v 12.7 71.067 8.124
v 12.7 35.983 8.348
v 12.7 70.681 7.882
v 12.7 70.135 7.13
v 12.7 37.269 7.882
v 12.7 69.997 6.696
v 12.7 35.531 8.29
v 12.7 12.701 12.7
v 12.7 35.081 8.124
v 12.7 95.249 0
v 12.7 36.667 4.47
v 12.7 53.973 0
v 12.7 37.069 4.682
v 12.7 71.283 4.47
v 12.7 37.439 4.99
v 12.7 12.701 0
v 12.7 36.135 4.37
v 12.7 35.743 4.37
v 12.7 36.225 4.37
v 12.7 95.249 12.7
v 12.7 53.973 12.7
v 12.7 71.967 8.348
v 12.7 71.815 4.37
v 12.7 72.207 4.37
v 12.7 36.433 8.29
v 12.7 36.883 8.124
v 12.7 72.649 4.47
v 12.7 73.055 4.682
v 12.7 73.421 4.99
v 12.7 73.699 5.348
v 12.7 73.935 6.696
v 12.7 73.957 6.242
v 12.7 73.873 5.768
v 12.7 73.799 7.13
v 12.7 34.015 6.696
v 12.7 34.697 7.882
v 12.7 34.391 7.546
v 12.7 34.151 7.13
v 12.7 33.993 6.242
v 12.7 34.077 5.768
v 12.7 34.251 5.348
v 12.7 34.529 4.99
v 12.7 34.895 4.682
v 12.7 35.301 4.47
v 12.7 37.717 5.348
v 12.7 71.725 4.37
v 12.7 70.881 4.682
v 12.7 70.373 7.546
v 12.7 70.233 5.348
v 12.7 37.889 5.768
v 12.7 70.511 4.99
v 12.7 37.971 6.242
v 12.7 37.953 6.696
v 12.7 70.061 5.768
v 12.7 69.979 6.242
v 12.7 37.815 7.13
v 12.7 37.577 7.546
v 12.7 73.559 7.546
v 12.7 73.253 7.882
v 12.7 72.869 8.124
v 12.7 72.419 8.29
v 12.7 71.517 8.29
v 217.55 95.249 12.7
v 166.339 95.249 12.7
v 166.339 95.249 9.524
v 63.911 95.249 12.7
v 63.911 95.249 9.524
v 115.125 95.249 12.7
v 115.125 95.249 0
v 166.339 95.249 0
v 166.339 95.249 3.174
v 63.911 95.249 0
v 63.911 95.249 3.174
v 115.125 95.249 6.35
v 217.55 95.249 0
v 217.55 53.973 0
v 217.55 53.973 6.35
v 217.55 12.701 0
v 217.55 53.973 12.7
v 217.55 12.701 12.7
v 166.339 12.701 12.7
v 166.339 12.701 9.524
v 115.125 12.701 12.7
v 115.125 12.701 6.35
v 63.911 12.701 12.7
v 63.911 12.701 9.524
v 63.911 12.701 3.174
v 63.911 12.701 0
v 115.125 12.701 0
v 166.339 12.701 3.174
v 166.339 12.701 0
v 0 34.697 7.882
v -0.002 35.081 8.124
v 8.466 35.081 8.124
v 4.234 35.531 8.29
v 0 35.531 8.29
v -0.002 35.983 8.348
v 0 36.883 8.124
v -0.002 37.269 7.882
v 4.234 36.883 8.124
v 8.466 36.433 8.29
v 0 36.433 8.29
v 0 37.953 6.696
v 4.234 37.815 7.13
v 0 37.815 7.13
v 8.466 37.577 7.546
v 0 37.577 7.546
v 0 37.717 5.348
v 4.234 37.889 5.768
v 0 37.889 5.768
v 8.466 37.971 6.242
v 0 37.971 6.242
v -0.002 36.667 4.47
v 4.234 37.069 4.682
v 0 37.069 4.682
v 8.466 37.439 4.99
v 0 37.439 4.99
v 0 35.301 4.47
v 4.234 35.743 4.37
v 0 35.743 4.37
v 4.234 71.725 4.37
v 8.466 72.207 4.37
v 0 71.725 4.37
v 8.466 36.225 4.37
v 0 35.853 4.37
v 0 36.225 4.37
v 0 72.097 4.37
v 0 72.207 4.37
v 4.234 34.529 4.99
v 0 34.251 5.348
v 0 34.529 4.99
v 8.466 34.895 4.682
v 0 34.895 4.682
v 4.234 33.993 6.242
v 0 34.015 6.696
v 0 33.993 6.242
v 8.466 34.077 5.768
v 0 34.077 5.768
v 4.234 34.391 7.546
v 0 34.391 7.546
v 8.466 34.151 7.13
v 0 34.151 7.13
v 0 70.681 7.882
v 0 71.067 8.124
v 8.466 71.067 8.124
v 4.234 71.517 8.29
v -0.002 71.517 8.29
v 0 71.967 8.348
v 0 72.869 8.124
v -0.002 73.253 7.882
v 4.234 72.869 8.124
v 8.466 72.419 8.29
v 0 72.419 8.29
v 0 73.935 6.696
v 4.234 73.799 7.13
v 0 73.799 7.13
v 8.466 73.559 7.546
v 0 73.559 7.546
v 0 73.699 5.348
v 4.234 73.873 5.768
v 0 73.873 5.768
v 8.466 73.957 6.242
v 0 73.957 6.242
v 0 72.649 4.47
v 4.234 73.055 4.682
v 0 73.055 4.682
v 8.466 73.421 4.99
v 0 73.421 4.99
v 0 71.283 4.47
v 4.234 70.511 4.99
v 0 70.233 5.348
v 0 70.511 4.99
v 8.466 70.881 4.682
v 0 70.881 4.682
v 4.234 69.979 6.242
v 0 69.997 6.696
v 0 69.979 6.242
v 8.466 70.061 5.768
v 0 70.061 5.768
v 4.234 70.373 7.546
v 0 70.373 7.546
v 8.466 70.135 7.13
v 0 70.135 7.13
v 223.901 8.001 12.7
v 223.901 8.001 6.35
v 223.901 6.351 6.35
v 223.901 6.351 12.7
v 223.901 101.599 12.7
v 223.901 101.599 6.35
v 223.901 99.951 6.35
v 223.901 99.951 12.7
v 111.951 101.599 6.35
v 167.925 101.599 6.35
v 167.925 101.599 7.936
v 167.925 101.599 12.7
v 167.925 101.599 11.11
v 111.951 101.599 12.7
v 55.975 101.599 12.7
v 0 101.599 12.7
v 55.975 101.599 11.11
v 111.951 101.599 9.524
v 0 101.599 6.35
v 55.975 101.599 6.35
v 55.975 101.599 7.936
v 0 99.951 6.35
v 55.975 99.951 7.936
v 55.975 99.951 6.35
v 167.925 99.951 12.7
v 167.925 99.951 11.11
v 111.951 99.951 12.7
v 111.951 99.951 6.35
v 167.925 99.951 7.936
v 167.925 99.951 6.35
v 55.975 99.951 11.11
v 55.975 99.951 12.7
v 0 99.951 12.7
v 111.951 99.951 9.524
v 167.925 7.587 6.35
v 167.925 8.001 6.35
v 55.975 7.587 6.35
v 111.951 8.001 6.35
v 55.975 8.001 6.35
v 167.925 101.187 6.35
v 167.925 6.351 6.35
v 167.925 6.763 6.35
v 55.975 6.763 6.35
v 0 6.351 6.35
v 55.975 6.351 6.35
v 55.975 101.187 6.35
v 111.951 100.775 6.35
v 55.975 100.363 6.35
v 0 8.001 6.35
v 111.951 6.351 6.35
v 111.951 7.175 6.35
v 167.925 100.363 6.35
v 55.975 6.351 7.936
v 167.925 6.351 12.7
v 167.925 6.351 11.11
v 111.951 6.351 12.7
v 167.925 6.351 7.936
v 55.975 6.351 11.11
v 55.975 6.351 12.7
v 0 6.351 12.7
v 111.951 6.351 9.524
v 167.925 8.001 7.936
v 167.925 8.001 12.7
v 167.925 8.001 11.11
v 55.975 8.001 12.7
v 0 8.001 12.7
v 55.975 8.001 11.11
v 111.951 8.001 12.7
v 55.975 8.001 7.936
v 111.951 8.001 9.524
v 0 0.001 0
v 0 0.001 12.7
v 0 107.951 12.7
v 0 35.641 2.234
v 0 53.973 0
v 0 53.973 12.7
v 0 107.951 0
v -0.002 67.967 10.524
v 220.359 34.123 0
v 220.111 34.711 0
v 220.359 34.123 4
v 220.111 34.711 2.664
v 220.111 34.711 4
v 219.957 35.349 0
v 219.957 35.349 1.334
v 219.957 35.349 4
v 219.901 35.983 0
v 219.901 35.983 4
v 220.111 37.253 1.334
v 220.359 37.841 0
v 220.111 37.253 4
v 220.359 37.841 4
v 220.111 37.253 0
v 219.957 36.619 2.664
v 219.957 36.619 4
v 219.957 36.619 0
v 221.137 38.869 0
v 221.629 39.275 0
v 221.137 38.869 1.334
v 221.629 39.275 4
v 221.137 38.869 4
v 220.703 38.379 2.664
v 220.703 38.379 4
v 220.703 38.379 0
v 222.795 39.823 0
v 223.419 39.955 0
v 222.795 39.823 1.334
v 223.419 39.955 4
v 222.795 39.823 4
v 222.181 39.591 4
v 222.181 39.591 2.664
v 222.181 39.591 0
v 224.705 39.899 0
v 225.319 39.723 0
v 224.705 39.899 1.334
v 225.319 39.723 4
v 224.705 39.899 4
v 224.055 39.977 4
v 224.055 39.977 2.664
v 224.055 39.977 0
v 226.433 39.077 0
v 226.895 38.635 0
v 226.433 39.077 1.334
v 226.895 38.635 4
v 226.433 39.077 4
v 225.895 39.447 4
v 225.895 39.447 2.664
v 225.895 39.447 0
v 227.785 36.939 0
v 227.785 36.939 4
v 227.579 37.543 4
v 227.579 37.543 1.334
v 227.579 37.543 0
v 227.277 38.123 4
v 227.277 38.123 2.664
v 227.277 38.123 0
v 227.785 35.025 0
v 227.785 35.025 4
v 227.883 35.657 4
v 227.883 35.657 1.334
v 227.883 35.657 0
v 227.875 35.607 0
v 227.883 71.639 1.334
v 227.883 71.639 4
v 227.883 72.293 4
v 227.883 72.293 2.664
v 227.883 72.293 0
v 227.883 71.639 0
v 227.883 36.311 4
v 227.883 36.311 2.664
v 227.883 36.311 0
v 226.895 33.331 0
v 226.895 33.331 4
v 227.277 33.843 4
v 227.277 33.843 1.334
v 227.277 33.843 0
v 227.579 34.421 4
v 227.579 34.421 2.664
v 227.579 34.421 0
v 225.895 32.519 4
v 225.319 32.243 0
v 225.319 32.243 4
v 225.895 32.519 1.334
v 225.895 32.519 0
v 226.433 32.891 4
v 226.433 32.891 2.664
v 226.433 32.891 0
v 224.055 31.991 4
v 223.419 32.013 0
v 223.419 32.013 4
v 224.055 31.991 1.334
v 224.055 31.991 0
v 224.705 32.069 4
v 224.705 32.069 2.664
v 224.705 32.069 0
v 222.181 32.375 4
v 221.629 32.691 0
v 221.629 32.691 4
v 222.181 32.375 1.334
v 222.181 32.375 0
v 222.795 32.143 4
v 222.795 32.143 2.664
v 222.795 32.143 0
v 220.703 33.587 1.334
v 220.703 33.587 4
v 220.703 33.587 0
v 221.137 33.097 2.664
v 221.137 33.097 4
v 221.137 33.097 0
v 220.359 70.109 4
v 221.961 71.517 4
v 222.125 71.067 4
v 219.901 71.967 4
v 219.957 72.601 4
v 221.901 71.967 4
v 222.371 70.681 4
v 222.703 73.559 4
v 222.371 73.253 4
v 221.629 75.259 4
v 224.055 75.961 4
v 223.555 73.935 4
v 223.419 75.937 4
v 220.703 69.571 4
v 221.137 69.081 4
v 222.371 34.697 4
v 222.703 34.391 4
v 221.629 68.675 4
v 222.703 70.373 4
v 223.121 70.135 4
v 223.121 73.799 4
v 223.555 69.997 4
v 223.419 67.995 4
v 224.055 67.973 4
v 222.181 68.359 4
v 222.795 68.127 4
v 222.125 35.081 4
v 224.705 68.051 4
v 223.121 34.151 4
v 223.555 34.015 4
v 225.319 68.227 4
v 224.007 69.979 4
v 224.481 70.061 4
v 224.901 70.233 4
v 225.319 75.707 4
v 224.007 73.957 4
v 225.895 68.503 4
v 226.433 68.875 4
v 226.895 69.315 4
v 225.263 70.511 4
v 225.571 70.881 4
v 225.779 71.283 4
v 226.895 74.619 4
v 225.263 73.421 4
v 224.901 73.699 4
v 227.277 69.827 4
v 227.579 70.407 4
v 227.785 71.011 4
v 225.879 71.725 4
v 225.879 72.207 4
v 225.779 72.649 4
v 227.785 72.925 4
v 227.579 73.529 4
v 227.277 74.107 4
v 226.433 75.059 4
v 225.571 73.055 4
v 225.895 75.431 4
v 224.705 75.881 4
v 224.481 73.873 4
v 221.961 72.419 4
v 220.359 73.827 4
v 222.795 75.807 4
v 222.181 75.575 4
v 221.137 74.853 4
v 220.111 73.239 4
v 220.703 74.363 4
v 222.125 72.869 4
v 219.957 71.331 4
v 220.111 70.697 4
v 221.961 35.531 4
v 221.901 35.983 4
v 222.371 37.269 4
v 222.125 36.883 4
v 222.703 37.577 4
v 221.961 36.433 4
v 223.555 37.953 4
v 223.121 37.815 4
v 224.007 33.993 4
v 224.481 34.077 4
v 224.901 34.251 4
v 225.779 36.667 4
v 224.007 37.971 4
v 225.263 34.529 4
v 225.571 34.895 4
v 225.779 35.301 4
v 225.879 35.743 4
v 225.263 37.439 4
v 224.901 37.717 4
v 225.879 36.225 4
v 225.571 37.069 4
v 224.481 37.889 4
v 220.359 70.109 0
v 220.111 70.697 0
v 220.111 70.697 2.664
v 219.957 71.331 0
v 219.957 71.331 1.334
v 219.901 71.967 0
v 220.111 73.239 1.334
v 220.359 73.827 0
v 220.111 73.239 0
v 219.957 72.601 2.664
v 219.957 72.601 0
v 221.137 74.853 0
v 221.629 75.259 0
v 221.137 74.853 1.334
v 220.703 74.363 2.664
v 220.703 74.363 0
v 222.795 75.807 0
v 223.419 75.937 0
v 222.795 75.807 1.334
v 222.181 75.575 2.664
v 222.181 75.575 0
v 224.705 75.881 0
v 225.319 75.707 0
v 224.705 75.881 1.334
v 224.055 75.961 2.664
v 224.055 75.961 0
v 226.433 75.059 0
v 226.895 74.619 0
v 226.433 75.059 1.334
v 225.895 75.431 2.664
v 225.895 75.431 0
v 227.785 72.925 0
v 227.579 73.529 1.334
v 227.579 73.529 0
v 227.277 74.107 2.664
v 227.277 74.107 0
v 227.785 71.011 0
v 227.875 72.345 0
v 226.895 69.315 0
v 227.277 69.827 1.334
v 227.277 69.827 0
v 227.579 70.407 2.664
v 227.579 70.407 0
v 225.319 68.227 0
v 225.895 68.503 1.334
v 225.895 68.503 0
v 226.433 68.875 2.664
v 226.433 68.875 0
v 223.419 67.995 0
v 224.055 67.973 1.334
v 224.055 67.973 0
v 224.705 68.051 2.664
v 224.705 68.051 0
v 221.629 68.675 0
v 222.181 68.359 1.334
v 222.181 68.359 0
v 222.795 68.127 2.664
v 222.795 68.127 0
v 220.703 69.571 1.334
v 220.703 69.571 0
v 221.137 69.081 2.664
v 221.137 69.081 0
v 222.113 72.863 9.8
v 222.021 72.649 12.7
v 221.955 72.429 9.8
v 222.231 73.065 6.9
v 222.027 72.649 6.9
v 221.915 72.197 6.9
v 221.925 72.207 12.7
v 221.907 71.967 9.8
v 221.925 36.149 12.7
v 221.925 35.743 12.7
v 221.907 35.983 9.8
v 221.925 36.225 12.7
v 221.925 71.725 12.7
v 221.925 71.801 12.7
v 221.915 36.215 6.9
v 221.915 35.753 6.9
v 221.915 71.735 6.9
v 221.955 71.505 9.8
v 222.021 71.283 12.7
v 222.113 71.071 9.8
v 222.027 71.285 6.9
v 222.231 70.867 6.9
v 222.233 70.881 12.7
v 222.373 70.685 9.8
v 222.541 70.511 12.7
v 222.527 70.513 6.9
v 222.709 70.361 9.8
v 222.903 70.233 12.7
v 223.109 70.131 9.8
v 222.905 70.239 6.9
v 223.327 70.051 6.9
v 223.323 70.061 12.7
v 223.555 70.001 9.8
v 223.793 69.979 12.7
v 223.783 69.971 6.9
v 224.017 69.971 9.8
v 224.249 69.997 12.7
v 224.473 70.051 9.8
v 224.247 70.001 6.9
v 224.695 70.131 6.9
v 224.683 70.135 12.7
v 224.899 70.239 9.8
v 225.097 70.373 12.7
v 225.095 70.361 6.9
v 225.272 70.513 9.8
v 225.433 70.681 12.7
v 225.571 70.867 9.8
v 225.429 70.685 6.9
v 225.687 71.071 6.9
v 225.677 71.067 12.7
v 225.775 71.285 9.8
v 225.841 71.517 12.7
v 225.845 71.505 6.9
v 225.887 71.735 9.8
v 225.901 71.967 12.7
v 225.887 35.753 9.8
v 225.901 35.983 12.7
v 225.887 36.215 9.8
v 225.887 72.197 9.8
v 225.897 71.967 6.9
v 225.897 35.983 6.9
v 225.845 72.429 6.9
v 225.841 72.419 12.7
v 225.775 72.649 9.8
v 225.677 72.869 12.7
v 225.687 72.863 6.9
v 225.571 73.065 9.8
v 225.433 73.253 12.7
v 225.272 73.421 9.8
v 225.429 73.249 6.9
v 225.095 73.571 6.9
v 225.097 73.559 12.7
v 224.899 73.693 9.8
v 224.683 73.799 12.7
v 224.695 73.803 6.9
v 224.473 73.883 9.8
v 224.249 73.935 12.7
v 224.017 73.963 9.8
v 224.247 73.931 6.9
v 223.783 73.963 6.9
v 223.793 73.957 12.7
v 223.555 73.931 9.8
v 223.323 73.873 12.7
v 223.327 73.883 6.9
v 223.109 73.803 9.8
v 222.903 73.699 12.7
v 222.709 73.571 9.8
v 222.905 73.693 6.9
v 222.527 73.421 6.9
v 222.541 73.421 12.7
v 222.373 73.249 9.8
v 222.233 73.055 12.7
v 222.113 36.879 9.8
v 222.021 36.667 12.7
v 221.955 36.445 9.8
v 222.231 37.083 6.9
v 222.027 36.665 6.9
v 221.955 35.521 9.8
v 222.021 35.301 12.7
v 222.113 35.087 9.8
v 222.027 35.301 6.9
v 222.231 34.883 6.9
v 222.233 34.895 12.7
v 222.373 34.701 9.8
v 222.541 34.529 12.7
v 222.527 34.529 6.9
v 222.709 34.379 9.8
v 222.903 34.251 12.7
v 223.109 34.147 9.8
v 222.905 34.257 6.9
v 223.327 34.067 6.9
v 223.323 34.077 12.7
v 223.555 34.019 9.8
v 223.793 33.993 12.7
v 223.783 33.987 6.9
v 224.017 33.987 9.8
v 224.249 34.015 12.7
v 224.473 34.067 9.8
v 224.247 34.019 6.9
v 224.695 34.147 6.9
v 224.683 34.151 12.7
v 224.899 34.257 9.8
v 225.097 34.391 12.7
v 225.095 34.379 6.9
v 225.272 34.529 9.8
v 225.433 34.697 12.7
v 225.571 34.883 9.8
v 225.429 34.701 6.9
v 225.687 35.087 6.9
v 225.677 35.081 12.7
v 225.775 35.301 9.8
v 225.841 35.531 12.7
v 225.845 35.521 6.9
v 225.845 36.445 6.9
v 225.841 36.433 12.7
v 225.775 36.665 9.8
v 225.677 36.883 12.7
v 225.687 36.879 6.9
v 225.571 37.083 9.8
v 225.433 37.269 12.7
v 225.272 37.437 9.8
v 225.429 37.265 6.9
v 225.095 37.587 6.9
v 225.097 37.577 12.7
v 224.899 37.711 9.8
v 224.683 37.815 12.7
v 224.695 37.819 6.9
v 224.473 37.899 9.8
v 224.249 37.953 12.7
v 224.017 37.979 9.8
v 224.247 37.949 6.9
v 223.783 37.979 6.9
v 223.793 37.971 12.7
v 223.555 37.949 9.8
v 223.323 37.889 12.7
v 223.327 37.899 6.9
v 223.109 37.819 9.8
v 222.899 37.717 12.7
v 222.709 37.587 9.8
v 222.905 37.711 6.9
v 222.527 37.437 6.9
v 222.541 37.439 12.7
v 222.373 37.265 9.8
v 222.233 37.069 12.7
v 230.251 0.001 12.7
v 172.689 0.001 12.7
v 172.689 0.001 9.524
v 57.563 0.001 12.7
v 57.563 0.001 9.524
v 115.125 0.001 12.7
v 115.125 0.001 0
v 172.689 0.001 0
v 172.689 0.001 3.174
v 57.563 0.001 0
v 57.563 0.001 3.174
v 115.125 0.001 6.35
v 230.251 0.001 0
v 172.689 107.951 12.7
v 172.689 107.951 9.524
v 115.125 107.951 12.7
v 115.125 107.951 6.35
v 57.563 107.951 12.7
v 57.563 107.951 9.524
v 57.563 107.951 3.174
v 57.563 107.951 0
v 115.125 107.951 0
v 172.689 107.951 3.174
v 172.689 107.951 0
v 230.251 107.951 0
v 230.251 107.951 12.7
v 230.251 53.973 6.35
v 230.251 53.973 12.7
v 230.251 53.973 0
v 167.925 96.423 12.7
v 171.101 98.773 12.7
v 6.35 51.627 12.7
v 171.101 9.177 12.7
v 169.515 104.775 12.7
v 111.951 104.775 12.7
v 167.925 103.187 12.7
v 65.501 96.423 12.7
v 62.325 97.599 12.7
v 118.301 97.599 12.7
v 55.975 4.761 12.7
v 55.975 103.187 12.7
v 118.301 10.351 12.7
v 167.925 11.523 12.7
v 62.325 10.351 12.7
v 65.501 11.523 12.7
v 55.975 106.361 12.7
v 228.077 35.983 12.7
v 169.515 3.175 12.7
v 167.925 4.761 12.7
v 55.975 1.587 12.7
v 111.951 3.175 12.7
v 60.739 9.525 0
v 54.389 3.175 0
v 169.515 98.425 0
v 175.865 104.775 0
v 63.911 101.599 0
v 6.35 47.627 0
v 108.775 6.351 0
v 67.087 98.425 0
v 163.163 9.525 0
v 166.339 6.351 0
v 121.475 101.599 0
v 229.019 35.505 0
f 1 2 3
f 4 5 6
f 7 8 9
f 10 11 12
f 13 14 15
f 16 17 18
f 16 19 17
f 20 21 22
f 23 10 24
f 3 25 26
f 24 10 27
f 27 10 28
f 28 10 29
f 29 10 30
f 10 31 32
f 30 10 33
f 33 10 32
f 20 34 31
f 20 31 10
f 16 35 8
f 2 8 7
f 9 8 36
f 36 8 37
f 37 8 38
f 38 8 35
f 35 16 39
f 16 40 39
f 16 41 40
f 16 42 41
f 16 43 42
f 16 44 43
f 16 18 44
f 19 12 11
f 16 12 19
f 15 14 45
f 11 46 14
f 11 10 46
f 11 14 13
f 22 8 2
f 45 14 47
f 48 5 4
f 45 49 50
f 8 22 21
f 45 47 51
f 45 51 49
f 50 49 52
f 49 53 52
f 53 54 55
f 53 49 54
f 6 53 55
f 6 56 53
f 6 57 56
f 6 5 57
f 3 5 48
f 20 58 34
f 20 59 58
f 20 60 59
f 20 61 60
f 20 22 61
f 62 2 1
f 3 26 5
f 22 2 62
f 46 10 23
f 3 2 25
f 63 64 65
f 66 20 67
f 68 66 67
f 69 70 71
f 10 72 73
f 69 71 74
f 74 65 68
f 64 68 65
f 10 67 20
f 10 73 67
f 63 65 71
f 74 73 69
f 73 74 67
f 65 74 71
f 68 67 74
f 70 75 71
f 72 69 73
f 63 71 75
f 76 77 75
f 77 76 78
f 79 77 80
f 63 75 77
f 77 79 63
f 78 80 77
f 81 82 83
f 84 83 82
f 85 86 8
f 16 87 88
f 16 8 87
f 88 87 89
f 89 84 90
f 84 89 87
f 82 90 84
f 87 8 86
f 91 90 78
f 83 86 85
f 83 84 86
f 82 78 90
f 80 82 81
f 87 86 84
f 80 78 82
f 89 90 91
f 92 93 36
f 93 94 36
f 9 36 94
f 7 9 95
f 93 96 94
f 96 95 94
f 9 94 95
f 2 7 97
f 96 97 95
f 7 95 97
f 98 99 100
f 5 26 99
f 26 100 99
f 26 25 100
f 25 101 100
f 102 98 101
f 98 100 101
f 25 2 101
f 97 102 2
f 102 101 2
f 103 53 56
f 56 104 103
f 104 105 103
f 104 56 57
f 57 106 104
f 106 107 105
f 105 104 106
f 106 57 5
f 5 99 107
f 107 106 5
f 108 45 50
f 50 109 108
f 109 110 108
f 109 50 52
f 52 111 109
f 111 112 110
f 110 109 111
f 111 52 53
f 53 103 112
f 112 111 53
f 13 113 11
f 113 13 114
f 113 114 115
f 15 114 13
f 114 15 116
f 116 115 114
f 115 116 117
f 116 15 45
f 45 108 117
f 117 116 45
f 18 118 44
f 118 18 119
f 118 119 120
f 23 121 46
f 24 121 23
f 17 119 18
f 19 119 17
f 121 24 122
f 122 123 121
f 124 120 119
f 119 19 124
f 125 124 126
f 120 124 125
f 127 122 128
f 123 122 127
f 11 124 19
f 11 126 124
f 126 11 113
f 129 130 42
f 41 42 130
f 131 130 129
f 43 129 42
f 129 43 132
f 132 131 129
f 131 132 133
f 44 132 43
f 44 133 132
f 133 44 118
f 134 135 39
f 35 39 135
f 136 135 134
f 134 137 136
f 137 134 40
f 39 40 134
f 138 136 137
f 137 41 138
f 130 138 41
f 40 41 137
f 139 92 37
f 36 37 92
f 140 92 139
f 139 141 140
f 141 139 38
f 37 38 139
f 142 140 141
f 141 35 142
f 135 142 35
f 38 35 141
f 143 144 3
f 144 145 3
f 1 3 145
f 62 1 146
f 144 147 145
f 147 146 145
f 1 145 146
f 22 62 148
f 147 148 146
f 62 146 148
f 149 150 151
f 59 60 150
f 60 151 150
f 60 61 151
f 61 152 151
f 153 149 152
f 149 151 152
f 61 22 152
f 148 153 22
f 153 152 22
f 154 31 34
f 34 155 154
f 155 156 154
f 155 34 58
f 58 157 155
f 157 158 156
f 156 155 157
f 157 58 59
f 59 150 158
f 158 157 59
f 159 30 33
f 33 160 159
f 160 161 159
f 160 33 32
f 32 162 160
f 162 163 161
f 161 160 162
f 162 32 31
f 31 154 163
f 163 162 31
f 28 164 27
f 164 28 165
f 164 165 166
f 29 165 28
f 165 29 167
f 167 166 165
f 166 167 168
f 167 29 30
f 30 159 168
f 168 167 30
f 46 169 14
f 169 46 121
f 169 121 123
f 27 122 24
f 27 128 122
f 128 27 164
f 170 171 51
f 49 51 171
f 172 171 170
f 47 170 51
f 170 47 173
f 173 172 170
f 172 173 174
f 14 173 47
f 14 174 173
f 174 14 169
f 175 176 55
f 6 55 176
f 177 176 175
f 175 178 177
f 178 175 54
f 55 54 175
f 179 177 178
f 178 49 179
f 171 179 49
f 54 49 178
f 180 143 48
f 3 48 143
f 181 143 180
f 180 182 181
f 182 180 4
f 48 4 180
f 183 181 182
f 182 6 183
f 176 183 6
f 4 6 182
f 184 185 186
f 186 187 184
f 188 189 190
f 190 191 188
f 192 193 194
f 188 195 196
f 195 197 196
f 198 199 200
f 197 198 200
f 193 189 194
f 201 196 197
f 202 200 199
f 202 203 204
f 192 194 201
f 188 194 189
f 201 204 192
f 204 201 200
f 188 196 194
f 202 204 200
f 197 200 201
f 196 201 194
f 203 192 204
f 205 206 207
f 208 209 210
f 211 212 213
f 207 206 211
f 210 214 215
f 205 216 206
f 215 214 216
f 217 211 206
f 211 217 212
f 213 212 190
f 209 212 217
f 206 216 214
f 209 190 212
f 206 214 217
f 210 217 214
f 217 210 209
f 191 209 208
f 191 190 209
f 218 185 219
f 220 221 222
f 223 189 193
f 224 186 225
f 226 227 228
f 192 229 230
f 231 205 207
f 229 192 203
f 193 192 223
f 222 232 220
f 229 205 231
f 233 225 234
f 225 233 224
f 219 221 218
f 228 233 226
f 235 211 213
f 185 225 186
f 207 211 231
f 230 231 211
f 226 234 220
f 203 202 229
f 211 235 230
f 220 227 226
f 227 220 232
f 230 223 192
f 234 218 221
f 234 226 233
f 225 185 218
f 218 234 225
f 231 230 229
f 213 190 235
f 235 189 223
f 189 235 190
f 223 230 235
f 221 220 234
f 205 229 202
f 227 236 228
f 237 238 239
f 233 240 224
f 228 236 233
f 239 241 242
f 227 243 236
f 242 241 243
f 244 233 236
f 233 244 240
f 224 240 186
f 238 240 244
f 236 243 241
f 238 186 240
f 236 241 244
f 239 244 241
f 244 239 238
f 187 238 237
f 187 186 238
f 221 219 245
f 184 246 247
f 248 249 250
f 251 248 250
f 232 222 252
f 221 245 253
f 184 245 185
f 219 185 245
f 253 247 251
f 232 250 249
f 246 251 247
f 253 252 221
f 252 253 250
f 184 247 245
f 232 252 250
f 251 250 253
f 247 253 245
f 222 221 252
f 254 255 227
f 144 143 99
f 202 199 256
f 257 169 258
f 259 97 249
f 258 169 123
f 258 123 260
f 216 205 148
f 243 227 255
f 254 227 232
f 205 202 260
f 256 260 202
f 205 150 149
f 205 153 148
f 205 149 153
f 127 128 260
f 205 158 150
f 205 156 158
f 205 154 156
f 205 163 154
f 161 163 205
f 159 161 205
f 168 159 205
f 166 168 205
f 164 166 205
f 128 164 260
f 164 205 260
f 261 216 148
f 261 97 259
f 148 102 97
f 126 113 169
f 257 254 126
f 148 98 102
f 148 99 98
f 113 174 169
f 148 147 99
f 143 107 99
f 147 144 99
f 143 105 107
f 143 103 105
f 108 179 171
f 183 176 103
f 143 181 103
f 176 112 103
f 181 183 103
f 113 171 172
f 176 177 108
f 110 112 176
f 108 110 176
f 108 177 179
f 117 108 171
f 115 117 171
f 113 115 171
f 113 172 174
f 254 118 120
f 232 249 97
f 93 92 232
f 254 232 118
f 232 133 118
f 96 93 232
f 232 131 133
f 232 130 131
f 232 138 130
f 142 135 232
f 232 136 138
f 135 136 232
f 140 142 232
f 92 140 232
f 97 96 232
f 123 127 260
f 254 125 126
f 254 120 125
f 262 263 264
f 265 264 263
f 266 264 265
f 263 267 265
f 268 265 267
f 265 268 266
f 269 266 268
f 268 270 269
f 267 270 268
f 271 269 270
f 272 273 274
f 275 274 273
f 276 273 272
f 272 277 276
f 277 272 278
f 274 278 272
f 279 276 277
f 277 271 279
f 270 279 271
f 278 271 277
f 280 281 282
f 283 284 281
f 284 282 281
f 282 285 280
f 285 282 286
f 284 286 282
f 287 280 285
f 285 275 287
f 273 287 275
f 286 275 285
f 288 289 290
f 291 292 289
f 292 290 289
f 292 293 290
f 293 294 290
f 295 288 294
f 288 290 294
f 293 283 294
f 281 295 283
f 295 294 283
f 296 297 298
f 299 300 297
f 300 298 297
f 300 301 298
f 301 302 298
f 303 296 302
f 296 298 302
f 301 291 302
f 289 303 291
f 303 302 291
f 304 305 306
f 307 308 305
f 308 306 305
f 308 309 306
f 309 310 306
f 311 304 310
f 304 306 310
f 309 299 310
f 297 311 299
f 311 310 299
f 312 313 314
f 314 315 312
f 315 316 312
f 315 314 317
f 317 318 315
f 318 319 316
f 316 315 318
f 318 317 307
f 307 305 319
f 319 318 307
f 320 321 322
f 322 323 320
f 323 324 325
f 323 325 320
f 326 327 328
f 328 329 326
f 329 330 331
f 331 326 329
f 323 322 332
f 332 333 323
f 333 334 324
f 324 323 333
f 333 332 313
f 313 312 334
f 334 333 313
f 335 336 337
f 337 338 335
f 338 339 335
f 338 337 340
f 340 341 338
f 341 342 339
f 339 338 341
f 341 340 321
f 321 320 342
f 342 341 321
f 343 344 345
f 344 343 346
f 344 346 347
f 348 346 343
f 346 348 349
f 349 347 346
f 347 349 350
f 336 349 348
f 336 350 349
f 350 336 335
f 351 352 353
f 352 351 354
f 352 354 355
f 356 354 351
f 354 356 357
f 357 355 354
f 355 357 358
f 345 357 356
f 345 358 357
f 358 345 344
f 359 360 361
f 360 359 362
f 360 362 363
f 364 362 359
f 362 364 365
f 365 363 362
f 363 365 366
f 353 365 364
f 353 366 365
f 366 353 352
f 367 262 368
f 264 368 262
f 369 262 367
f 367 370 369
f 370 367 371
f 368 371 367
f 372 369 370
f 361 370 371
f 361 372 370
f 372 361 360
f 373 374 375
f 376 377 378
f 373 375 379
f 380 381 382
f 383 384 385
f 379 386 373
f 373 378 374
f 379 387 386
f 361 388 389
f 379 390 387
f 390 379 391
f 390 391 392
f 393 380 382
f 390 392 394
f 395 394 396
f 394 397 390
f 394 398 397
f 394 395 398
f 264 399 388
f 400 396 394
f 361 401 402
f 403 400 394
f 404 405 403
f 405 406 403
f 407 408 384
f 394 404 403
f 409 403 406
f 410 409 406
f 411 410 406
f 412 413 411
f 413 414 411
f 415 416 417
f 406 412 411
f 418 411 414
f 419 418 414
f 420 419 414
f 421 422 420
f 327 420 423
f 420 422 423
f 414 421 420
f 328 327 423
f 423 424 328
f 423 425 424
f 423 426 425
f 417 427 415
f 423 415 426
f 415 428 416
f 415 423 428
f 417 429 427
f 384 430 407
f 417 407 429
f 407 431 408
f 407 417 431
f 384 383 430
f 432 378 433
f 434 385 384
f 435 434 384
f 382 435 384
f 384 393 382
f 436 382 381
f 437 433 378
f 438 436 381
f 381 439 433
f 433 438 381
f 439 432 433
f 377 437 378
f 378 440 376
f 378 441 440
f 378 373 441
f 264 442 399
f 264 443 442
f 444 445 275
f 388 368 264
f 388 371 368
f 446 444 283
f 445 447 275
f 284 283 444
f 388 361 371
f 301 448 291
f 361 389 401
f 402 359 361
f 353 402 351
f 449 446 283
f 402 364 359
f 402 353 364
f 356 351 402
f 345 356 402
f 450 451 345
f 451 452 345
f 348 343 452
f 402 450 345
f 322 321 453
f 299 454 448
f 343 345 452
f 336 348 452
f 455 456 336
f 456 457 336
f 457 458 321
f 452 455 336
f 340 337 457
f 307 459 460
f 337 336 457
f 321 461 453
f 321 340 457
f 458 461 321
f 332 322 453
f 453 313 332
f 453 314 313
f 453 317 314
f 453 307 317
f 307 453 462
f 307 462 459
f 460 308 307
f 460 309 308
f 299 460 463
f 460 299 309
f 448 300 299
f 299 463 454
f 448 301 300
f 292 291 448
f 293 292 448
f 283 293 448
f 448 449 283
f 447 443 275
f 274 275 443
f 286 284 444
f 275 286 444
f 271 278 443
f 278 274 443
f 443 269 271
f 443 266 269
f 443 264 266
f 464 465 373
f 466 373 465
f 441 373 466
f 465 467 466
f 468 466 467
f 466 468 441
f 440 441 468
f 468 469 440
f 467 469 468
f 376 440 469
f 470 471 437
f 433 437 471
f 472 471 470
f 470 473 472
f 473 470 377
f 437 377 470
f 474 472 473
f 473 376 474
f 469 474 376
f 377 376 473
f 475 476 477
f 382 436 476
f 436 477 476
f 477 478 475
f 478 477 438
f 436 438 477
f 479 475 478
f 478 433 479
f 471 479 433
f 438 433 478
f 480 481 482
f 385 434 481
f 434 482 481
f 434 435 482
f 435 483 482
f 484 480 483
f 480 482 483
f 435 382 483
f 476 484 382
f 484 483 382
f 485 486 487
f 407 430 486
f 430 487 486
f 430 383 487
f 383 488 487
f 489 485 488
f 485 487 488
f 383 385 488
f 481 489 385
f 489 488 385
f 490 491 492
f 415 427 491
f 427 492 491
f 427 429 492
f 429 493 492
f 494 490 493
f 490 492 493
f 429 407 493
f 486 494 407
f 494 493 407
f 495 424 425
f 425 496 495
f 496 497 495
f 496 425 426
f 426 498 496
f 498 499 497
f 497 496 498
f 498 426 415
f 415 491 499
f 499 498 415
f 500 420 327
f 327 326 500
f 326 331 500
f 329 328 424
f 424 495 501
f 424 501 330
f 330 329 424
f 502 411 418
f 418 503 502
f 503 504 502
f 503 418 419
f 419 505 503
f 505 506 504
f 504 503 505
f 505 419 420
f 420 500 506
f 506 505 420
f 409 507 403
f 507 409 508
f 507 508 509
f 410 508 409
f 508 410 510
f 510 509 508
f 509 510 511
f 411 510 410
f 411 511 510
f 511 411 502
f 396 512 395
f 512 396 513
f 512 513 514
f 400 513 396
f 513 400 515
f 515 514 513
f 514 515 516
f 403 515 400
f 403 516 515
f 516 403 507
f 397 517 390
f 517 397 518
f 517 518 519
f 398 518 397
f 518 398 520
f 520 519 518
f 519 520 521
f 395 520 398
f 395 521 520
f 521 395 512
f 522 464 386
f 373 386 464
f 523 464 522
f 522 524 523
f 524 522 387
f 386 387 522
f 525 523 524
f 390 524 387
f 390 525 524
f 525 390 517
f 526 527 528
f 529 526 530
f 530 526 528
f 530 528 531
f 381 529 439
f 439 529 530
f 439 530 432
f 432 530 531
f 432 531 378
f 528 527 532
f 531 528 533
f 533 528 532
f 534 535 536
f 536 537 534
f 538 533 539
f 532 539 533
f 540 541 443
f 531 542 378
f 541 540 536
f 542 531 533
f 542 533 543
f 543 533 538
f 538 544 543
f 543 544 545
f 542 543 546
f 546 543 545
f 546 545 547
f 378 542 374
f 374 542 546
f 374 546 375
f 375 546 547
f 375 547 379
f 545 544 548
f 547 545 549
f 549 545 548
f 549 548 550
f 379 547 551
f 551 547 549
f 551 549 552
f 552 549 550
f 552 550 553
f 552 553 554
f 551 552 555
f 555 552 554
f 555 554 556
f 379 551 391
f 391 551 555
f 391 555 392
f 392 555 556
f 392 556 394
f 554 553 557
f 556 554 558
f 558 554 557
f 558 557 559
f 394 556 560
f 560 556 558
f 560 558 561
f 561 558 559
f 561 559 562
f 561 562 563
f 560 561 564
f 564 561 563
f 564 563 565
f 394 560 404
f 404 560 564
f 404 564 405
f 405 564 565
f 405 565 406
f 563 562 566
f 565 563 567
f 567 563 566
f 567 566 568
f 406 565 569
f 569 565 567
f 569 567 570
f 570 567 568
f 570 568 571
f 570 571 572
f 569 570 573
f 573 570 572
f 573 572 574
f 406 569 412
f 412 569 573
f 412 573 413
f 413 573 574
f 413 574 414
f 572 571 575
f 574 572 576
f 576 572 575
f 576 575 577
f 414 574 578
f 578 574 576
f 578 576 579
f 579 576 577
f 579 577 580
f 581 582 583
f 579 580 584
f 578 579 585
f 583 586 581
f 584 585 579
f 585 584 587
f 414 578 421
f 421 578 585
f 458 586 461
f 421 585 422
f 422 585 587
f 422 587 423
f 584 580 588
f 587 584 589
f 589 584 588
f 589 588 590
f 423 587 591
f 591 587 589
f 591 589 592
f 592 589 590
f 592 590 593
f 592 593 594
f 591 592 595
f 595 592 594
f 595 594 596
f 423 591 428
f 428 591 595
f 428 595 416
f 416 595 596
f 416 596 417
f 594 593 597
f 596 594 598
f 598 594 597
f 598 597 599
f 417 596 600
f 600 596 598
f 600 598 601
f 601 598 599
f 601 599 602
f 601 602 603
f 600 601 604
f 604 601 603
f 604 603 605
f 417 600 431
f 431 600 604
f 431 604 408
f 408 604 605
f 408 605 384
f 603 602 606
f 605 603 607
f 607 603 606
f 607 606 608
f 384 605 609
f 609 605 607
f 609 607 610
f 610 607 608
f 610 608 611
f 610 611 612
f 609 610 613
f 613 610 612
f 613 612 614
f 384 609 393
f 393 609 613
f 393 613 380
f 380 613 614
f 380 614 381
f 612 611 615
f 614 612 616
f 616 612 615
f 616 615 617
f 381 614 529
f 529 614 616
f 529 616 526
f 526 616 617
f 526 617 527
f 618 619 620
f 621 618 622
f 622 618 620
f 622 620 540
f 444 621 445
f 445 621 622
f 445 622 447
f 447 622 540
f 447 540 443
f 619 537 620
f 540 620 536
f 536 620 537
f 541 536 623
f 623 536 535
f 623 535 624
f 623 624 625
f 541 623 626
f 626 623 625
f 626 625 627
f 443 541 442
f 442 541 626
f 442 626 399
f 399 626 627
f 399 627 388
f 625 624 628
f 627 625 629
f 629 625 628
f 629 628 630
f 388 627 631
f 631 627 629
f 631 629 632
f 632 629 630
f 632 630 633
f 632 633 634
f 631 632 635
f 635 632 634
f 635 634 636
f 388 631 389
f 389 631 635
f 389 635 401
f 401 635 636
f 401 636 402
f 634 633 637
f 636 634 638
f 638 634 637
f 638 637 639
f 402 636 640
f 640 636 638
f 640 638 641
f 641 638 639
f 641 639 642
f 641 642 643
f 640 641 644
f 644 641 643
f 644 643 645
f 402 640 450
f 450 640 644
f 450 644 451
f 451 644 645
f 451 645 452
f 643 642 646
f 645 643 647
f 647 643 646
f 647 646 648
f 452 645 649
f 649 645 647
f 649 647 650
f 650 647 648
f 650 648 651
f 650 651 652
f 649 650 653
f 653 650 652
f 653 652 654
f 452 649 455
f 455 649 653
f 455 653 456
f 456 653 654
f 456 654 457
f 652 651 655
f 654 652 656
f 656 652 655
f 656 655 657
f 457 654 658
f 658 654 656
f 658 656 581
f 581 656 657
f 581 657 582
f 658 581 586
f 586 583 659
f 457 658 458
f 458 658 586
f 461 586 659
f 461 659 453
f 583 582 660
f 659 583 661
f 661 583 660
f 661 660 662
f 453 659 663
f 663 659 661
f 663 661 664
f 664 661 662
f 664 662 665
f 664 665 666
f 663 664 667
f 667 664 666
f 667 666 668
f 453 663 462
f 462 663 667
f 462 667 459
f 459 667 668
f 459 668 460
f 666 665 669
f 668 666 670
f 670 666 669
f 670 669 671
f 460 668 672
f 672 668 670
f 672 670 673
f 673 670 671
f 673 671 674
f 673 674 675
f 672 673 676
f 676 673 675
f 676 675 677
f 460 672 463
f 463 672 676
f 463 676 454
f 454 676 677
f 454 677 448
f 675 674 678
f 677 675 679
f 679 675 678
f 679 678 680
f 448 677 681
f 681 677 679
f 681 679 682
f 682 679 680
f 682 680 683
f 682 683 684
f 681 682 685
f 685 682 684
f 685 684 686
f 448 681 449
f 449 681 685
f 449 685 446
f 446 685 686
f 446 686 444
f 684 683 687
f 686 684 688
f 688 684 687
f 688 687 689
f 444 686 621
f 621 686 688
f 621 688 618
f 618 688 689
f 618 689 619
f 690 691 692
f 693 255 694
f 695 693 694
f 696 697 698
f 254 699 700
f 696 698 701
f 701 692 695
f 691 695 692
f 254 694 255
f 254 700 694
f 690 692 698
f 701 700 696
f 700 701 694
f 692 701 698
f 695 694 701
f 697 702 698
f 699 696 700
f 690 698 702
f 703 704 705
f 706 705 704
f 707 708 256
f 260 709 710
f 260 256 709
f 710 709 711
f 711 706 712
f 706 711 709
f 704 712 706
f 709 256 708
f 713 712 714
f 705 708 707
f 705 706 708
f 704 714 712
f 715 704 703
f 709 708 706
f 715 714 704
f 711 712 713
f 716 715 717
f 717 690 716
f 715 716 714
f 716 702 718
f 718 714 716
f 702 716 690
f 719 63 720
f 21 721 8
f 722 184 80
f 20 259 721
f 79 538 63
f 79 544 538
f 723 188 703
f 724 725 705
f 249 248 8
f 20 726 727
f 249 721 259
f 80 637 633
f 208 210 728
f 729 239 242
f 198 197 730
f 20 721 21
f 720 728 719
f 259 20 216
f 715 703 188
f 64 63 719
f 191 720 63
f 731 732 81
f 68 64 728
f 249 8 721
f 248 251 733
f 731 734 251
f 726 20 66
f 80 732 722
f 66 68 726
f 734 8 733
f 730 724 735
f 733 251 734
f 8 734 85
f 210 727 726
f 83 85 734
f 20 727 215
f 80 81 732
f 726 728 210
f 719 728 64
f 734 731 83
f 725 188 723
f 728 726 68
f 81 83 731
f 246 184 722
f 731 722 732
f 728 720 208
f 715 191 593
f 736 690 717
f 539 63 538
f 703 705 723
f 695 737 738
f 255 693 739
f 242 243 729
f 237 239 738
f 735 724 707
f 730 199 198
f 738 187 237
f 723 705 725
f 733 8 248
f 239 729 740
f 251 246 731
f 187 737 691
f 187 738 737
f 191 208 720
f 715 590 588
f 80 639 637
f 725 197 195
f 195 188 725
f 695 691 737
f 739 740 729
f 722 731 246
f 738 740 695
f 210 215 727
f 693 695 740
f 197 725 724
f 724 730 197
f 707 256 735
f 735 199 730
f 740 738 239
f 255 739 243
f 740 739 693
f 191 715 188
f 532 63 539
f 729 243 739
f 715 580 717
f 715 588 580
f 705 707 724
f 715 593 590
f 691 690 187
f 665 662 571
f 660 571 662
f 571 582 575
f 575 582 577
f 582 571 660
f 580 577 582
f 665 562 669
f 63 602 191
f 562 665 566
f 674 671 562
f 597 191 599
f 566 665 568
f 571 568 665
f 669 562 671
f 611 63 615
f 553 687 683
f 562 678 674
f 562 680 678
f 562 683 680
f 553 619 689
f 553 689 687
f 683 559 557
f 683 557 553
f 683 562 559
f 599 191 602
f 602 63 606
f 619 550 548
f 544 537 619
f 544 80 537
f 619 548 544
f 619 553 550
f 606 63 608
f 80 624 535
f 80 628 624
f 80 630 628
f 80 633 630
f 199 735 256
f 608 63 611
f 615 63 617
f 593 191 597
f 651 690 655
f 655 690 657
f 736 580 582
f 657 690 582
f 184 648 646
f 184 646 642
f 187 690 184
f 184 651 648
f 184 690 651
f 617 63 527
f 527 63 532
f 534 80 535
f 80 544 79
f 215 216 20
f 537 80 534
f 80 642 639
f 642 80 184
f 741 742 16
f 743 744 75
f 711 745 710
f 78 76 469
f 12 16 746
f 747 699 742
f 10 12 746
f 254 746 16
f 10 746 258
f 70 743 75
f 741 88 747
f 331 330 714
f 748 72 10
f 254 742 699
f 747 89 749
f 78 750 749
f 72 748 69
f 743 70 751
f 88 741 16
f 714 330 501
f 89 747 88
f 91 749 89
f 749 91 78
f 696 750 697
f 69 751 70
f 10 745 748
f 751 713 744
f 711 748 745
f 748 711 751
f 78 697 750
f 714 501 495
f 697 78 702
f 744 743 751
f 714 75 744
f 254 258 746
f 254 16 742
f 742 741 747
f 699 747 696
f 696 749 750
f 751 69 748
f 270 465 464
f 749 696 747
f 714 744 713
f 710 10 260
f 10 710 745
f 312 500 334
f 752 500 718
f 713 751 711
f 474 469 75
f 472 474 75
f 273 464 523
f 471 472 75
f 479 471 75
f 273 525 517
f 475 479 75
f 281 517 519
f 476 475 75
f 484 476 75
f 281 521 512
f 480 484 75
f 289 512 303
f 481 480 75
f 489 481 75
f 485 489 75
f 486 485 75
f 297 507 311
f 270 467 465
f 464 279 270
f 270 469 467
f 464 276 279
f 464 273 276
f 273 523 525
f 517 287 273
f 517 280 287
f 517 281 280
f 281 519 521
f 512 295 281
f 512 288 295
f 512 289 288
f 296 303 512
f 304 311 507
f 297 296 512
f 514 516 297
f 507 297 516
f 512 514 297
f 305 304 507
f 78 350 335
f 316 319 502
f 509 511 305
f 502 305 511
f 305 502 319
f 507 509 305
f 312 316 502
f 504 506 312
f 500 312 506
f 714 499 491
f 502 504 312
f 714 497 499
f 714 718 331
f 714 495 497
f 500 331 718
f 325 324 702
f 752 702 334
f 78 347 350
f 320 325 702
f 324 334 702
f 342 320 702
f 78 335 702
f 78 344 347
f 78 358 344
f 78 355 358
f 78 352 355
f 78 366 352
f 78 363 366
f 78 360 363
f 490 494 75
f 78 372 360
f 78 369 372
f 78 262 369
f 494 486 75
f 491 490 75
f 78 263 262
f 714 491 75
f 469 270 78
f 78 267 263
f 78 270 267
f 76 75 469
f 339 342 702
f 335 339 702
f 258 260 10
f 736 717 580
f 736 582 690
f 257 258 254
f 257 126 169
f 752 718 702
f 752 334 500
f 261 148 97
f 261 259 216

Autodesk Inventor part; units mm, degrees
ref_plane "YZ Plane" through (0, 0, 0) normal (1, 0, 0) x (0, 1, 0)
ref_plane "XZ Plane" through (0, 0, 0) normal (0, 1, 0) x (-1, 0, 0)
ref_plane "XY Plane" through (0, 0, 0) normal (0, 0, 1) x (1, 0, 0)
sketch "Sketch1" plane through (0, 0, 0) normal (0, 0, 1) x (1, 0, 0)
  line L0 (0, 0) -> (230.251, 0)
  line L1 (230.251, 0) -> (230.251, 107.95)
  line L2 (230.251, 107.95) -> (0, 107.95)
  line L3 (0, 107.95) -> (0, 0)
  line L4 (230.251, 107.95) -> (223.901, 107.95) construction
  line L5 (223.901, 107.95) -> (223.901, 101.6) construction
  line L6 (223.901, 101.6) -> (230.251, 101.6) construction
  line L7 (230.251, 101.6) -> (230.251, 107.95) construction
  line L8 (223.901, 101.6) -> (0, 101.6)
  line L9 (0, 101.6) -> (0, 100.076)
  line L10 (0, 100.076) -> (223.901, 100.076)
  line L11 (223.901, 100.076) -> (223.901, 101.6)
  line L12 (230.251, 0) -> (223.901, 0) construction
  line L13 (223.901, 0) -> (223.901, 35.9833) construction
  line L14 (223.901, 35.9833) -> (230.251, 35.9833) construction
  line L15 (230.251, 35.9833) -> (230.251, 0) construction
  circle A0 centre (223.901, 35.9833) radius 2
  circle A1 centre (223.901, 71.9667) radius 2
  line L16 (230.251, 53.975) -> (0, 53.975) construction
  line L17 (223.901, 6.35) -> (0, 6.35)
  line L18 (0, 7.874) -> (223.901, 7.874)
  line L19 (223.901, 7.874) -> (223.901, 6.35)
  dimension "length" = 230.251
  dimension "height" = 107.95
  dimension "d3" = 6.35
  dimension "d4" = 6.35
  dimension "d5" = 223.901
  dimension "d6" = 1.524
  dimension "spacing" = 35.9833
  dimension "d9" = 6.35
  dimension "TopScrewDiameter" = 4
  dimension "d13" = 35.9833
extrude "Generic Shape" add sketch "Sketch1" along normal blind 12.7
sketch "ScrewCapDiameter" plane through (0, 0, 0) normal (0, 0, -1) x (-1, 0, 0)
  circle A0 centre (-223.901, 71.9667) radius 2 projected
  circle A1 centre (-223.901, 71.9667) radius 4
  circle A2 centre (-223.901, 35.9833) radius 2 projected
  circle A3 centre (-223.901, 35.9833) radius 4
  point P0 (0, 0)
  dimension "d106" = 8
  dimension "d107" = 8
extrude "ScrewCapCountersink" cut sketch "ScrewCapDiameter" against normal blind 4
sketch "PcbNotchDimensions" plane through (0, 0, 12.7) normal (0, 0, 1) x (1, 0, 0)
  line L0 (230.251, 107.95) -> (0, 107.95) construction
  line L1 (230.251, 107.95) -> (223.901, 107.95) construction
  line L2 (223.901, 107.95) -> (223.901, 101.6) construction
  line L3 (223.901, 101.6) -> (230.251, 101.6) construction
  line L4 (230.251, 101.6) -> (230.251, 107.95) construction
  line L5 (223.901, 101.6) -> (0, 101.6)
  line L6 (0, 101.6) -> (0, 99.949)
  line L7 (0, 99.949) -> (223.901, 99.949)
  line L8 (223.901, 99.949) -> (223.901, 101.6)
  line L9 (230.251, 0) -> (230.251, 107.95) construction
  line L10 (230.251, 53.975) -> (0, 53.975) construction
  line L11 (0, 107.95) -> (0, 0) construction
  line L12 (223.901, 6.35) -> (0, 6.35)
  line L13 (0, 6.35) -> (0, 8.001)
  line L14 (0, 8.001) -> (223.901, 8.001)
  line L15 (223.901, 8.001) -> (223.901, 6.35)
  point P0 (230.251, 106.45)
  point P1 (0, 106.45)
  dimension "d21" = 6.35
  dimension "d22" = 6.35
  dimension "d23" = 223.901
  dimension "PcbThickness" = 1.651
extrude "PCB Notch" cut sketch "PcbNotchDimensions" against normal blind 6.35
sketch "UntappedScrewHoleDimensions" plane through (0, 0, 0) normal (-1, 0, 0) x (0, 0, 1)
  line L0 (0, 0) -> (6.35, 0) construction
  line L1 (6.35, 0) -> (6.35, 35.9833) construction
  line L2 (6.35, 35.9833) -> (0, 35.9833) construction
  line L3 (0, 35.9833) -> (0, 0) construction
  circle A0 centre (6.35, 35.9833) radius 2
  line L4 (0, 107.95) -> (6.35, 107.95) construction
  line L5 (6.35, 107.95) -> (6.35, 71.9667) construction
  line L6 (6.35, 71.9667) -> (0, 71.9667) construction
  line L7 (0, 71.9667) -> (0, 107.95) construction
  circle A1 centre (6.35, 71.9667) radius 2
  dimension "d33" = 6.35
  dimension "d34" = 35.9833
  dimension "ScrewDiameterUntapped" = 4
  dimension "d36" = 6.35
  dimension "d37" = 35.9833
  dimension "d38" = 4
extrude "UntappedScrewDepth" cut sketch "UntappedScrewHoleDimensions" against normal blind 12.7
thread "Thread10" size "M4x0.7" class "6H" standard "ANSI Metric M Profile" length 230.251
thread "Thread11" size "M4x0.7" class "6H" standard "ANSI Metric M Profile" length 230.251
sketch "Sketch18" plane through (0, 0, 0) normal (0, 0, -1) x (-1, 0, 0)
  line L0 (0, 0) -> (-12.7, 0) construction
  line L1 (-12.7, 0) -> (-12.7, 12.7) construction
  line L2 (-12.7, 12.7) -> (0, 12.7) construction
  line L3 (0, 12.7) -> (0, 0) construction
  line L4 (-12.7, 12.7) -> (-217.551, 12.7)
  line L5 (-217.551, 12.7) -> (-217.551, 95.25)
  line L6 (-217.551, 95.25) -> (-12.7, 95.25)
  line L7 (-12.7, 95.25) -> (-12.7, 12.7)
  dimension "bezel" = 12.7
  dimension "d156" = 12.7
  dimension "d157" = 204.851
  dimension "d158" = 82.55
extrude "Extrusion16" cut sketch "Sketch18" against normal blind 12.7
equation "\"d3\" = 0.5 * thickness"
equation "\"d4\" = 0.5 * thickness"
equation "\"d5\" = length - 0.5 * thickness"
equation "\"spacing\" = 0.333333 * height"
equation "\"d9\" = 0.5 * thickness"
equation "\"d13\" = spacing"
equation "\"d25\" = 0.5 * thickness"
equation "\"d33\" = 0.5 * thickness"
equation "\"d34\" = 0.333333 * height"
equation "\"d36\" = 0.5 * thickness"
equation "\"d37\" = 0.333333 * height"
equation "\"d38\" = ScrewDiameterUntapped"
equation "\"LcdThickness\" = 9.9"
equation "\"thickness\" = 12.7"
properties part number "2020-04-11 CubeBaseSkeleton" material "PET Plastic"
